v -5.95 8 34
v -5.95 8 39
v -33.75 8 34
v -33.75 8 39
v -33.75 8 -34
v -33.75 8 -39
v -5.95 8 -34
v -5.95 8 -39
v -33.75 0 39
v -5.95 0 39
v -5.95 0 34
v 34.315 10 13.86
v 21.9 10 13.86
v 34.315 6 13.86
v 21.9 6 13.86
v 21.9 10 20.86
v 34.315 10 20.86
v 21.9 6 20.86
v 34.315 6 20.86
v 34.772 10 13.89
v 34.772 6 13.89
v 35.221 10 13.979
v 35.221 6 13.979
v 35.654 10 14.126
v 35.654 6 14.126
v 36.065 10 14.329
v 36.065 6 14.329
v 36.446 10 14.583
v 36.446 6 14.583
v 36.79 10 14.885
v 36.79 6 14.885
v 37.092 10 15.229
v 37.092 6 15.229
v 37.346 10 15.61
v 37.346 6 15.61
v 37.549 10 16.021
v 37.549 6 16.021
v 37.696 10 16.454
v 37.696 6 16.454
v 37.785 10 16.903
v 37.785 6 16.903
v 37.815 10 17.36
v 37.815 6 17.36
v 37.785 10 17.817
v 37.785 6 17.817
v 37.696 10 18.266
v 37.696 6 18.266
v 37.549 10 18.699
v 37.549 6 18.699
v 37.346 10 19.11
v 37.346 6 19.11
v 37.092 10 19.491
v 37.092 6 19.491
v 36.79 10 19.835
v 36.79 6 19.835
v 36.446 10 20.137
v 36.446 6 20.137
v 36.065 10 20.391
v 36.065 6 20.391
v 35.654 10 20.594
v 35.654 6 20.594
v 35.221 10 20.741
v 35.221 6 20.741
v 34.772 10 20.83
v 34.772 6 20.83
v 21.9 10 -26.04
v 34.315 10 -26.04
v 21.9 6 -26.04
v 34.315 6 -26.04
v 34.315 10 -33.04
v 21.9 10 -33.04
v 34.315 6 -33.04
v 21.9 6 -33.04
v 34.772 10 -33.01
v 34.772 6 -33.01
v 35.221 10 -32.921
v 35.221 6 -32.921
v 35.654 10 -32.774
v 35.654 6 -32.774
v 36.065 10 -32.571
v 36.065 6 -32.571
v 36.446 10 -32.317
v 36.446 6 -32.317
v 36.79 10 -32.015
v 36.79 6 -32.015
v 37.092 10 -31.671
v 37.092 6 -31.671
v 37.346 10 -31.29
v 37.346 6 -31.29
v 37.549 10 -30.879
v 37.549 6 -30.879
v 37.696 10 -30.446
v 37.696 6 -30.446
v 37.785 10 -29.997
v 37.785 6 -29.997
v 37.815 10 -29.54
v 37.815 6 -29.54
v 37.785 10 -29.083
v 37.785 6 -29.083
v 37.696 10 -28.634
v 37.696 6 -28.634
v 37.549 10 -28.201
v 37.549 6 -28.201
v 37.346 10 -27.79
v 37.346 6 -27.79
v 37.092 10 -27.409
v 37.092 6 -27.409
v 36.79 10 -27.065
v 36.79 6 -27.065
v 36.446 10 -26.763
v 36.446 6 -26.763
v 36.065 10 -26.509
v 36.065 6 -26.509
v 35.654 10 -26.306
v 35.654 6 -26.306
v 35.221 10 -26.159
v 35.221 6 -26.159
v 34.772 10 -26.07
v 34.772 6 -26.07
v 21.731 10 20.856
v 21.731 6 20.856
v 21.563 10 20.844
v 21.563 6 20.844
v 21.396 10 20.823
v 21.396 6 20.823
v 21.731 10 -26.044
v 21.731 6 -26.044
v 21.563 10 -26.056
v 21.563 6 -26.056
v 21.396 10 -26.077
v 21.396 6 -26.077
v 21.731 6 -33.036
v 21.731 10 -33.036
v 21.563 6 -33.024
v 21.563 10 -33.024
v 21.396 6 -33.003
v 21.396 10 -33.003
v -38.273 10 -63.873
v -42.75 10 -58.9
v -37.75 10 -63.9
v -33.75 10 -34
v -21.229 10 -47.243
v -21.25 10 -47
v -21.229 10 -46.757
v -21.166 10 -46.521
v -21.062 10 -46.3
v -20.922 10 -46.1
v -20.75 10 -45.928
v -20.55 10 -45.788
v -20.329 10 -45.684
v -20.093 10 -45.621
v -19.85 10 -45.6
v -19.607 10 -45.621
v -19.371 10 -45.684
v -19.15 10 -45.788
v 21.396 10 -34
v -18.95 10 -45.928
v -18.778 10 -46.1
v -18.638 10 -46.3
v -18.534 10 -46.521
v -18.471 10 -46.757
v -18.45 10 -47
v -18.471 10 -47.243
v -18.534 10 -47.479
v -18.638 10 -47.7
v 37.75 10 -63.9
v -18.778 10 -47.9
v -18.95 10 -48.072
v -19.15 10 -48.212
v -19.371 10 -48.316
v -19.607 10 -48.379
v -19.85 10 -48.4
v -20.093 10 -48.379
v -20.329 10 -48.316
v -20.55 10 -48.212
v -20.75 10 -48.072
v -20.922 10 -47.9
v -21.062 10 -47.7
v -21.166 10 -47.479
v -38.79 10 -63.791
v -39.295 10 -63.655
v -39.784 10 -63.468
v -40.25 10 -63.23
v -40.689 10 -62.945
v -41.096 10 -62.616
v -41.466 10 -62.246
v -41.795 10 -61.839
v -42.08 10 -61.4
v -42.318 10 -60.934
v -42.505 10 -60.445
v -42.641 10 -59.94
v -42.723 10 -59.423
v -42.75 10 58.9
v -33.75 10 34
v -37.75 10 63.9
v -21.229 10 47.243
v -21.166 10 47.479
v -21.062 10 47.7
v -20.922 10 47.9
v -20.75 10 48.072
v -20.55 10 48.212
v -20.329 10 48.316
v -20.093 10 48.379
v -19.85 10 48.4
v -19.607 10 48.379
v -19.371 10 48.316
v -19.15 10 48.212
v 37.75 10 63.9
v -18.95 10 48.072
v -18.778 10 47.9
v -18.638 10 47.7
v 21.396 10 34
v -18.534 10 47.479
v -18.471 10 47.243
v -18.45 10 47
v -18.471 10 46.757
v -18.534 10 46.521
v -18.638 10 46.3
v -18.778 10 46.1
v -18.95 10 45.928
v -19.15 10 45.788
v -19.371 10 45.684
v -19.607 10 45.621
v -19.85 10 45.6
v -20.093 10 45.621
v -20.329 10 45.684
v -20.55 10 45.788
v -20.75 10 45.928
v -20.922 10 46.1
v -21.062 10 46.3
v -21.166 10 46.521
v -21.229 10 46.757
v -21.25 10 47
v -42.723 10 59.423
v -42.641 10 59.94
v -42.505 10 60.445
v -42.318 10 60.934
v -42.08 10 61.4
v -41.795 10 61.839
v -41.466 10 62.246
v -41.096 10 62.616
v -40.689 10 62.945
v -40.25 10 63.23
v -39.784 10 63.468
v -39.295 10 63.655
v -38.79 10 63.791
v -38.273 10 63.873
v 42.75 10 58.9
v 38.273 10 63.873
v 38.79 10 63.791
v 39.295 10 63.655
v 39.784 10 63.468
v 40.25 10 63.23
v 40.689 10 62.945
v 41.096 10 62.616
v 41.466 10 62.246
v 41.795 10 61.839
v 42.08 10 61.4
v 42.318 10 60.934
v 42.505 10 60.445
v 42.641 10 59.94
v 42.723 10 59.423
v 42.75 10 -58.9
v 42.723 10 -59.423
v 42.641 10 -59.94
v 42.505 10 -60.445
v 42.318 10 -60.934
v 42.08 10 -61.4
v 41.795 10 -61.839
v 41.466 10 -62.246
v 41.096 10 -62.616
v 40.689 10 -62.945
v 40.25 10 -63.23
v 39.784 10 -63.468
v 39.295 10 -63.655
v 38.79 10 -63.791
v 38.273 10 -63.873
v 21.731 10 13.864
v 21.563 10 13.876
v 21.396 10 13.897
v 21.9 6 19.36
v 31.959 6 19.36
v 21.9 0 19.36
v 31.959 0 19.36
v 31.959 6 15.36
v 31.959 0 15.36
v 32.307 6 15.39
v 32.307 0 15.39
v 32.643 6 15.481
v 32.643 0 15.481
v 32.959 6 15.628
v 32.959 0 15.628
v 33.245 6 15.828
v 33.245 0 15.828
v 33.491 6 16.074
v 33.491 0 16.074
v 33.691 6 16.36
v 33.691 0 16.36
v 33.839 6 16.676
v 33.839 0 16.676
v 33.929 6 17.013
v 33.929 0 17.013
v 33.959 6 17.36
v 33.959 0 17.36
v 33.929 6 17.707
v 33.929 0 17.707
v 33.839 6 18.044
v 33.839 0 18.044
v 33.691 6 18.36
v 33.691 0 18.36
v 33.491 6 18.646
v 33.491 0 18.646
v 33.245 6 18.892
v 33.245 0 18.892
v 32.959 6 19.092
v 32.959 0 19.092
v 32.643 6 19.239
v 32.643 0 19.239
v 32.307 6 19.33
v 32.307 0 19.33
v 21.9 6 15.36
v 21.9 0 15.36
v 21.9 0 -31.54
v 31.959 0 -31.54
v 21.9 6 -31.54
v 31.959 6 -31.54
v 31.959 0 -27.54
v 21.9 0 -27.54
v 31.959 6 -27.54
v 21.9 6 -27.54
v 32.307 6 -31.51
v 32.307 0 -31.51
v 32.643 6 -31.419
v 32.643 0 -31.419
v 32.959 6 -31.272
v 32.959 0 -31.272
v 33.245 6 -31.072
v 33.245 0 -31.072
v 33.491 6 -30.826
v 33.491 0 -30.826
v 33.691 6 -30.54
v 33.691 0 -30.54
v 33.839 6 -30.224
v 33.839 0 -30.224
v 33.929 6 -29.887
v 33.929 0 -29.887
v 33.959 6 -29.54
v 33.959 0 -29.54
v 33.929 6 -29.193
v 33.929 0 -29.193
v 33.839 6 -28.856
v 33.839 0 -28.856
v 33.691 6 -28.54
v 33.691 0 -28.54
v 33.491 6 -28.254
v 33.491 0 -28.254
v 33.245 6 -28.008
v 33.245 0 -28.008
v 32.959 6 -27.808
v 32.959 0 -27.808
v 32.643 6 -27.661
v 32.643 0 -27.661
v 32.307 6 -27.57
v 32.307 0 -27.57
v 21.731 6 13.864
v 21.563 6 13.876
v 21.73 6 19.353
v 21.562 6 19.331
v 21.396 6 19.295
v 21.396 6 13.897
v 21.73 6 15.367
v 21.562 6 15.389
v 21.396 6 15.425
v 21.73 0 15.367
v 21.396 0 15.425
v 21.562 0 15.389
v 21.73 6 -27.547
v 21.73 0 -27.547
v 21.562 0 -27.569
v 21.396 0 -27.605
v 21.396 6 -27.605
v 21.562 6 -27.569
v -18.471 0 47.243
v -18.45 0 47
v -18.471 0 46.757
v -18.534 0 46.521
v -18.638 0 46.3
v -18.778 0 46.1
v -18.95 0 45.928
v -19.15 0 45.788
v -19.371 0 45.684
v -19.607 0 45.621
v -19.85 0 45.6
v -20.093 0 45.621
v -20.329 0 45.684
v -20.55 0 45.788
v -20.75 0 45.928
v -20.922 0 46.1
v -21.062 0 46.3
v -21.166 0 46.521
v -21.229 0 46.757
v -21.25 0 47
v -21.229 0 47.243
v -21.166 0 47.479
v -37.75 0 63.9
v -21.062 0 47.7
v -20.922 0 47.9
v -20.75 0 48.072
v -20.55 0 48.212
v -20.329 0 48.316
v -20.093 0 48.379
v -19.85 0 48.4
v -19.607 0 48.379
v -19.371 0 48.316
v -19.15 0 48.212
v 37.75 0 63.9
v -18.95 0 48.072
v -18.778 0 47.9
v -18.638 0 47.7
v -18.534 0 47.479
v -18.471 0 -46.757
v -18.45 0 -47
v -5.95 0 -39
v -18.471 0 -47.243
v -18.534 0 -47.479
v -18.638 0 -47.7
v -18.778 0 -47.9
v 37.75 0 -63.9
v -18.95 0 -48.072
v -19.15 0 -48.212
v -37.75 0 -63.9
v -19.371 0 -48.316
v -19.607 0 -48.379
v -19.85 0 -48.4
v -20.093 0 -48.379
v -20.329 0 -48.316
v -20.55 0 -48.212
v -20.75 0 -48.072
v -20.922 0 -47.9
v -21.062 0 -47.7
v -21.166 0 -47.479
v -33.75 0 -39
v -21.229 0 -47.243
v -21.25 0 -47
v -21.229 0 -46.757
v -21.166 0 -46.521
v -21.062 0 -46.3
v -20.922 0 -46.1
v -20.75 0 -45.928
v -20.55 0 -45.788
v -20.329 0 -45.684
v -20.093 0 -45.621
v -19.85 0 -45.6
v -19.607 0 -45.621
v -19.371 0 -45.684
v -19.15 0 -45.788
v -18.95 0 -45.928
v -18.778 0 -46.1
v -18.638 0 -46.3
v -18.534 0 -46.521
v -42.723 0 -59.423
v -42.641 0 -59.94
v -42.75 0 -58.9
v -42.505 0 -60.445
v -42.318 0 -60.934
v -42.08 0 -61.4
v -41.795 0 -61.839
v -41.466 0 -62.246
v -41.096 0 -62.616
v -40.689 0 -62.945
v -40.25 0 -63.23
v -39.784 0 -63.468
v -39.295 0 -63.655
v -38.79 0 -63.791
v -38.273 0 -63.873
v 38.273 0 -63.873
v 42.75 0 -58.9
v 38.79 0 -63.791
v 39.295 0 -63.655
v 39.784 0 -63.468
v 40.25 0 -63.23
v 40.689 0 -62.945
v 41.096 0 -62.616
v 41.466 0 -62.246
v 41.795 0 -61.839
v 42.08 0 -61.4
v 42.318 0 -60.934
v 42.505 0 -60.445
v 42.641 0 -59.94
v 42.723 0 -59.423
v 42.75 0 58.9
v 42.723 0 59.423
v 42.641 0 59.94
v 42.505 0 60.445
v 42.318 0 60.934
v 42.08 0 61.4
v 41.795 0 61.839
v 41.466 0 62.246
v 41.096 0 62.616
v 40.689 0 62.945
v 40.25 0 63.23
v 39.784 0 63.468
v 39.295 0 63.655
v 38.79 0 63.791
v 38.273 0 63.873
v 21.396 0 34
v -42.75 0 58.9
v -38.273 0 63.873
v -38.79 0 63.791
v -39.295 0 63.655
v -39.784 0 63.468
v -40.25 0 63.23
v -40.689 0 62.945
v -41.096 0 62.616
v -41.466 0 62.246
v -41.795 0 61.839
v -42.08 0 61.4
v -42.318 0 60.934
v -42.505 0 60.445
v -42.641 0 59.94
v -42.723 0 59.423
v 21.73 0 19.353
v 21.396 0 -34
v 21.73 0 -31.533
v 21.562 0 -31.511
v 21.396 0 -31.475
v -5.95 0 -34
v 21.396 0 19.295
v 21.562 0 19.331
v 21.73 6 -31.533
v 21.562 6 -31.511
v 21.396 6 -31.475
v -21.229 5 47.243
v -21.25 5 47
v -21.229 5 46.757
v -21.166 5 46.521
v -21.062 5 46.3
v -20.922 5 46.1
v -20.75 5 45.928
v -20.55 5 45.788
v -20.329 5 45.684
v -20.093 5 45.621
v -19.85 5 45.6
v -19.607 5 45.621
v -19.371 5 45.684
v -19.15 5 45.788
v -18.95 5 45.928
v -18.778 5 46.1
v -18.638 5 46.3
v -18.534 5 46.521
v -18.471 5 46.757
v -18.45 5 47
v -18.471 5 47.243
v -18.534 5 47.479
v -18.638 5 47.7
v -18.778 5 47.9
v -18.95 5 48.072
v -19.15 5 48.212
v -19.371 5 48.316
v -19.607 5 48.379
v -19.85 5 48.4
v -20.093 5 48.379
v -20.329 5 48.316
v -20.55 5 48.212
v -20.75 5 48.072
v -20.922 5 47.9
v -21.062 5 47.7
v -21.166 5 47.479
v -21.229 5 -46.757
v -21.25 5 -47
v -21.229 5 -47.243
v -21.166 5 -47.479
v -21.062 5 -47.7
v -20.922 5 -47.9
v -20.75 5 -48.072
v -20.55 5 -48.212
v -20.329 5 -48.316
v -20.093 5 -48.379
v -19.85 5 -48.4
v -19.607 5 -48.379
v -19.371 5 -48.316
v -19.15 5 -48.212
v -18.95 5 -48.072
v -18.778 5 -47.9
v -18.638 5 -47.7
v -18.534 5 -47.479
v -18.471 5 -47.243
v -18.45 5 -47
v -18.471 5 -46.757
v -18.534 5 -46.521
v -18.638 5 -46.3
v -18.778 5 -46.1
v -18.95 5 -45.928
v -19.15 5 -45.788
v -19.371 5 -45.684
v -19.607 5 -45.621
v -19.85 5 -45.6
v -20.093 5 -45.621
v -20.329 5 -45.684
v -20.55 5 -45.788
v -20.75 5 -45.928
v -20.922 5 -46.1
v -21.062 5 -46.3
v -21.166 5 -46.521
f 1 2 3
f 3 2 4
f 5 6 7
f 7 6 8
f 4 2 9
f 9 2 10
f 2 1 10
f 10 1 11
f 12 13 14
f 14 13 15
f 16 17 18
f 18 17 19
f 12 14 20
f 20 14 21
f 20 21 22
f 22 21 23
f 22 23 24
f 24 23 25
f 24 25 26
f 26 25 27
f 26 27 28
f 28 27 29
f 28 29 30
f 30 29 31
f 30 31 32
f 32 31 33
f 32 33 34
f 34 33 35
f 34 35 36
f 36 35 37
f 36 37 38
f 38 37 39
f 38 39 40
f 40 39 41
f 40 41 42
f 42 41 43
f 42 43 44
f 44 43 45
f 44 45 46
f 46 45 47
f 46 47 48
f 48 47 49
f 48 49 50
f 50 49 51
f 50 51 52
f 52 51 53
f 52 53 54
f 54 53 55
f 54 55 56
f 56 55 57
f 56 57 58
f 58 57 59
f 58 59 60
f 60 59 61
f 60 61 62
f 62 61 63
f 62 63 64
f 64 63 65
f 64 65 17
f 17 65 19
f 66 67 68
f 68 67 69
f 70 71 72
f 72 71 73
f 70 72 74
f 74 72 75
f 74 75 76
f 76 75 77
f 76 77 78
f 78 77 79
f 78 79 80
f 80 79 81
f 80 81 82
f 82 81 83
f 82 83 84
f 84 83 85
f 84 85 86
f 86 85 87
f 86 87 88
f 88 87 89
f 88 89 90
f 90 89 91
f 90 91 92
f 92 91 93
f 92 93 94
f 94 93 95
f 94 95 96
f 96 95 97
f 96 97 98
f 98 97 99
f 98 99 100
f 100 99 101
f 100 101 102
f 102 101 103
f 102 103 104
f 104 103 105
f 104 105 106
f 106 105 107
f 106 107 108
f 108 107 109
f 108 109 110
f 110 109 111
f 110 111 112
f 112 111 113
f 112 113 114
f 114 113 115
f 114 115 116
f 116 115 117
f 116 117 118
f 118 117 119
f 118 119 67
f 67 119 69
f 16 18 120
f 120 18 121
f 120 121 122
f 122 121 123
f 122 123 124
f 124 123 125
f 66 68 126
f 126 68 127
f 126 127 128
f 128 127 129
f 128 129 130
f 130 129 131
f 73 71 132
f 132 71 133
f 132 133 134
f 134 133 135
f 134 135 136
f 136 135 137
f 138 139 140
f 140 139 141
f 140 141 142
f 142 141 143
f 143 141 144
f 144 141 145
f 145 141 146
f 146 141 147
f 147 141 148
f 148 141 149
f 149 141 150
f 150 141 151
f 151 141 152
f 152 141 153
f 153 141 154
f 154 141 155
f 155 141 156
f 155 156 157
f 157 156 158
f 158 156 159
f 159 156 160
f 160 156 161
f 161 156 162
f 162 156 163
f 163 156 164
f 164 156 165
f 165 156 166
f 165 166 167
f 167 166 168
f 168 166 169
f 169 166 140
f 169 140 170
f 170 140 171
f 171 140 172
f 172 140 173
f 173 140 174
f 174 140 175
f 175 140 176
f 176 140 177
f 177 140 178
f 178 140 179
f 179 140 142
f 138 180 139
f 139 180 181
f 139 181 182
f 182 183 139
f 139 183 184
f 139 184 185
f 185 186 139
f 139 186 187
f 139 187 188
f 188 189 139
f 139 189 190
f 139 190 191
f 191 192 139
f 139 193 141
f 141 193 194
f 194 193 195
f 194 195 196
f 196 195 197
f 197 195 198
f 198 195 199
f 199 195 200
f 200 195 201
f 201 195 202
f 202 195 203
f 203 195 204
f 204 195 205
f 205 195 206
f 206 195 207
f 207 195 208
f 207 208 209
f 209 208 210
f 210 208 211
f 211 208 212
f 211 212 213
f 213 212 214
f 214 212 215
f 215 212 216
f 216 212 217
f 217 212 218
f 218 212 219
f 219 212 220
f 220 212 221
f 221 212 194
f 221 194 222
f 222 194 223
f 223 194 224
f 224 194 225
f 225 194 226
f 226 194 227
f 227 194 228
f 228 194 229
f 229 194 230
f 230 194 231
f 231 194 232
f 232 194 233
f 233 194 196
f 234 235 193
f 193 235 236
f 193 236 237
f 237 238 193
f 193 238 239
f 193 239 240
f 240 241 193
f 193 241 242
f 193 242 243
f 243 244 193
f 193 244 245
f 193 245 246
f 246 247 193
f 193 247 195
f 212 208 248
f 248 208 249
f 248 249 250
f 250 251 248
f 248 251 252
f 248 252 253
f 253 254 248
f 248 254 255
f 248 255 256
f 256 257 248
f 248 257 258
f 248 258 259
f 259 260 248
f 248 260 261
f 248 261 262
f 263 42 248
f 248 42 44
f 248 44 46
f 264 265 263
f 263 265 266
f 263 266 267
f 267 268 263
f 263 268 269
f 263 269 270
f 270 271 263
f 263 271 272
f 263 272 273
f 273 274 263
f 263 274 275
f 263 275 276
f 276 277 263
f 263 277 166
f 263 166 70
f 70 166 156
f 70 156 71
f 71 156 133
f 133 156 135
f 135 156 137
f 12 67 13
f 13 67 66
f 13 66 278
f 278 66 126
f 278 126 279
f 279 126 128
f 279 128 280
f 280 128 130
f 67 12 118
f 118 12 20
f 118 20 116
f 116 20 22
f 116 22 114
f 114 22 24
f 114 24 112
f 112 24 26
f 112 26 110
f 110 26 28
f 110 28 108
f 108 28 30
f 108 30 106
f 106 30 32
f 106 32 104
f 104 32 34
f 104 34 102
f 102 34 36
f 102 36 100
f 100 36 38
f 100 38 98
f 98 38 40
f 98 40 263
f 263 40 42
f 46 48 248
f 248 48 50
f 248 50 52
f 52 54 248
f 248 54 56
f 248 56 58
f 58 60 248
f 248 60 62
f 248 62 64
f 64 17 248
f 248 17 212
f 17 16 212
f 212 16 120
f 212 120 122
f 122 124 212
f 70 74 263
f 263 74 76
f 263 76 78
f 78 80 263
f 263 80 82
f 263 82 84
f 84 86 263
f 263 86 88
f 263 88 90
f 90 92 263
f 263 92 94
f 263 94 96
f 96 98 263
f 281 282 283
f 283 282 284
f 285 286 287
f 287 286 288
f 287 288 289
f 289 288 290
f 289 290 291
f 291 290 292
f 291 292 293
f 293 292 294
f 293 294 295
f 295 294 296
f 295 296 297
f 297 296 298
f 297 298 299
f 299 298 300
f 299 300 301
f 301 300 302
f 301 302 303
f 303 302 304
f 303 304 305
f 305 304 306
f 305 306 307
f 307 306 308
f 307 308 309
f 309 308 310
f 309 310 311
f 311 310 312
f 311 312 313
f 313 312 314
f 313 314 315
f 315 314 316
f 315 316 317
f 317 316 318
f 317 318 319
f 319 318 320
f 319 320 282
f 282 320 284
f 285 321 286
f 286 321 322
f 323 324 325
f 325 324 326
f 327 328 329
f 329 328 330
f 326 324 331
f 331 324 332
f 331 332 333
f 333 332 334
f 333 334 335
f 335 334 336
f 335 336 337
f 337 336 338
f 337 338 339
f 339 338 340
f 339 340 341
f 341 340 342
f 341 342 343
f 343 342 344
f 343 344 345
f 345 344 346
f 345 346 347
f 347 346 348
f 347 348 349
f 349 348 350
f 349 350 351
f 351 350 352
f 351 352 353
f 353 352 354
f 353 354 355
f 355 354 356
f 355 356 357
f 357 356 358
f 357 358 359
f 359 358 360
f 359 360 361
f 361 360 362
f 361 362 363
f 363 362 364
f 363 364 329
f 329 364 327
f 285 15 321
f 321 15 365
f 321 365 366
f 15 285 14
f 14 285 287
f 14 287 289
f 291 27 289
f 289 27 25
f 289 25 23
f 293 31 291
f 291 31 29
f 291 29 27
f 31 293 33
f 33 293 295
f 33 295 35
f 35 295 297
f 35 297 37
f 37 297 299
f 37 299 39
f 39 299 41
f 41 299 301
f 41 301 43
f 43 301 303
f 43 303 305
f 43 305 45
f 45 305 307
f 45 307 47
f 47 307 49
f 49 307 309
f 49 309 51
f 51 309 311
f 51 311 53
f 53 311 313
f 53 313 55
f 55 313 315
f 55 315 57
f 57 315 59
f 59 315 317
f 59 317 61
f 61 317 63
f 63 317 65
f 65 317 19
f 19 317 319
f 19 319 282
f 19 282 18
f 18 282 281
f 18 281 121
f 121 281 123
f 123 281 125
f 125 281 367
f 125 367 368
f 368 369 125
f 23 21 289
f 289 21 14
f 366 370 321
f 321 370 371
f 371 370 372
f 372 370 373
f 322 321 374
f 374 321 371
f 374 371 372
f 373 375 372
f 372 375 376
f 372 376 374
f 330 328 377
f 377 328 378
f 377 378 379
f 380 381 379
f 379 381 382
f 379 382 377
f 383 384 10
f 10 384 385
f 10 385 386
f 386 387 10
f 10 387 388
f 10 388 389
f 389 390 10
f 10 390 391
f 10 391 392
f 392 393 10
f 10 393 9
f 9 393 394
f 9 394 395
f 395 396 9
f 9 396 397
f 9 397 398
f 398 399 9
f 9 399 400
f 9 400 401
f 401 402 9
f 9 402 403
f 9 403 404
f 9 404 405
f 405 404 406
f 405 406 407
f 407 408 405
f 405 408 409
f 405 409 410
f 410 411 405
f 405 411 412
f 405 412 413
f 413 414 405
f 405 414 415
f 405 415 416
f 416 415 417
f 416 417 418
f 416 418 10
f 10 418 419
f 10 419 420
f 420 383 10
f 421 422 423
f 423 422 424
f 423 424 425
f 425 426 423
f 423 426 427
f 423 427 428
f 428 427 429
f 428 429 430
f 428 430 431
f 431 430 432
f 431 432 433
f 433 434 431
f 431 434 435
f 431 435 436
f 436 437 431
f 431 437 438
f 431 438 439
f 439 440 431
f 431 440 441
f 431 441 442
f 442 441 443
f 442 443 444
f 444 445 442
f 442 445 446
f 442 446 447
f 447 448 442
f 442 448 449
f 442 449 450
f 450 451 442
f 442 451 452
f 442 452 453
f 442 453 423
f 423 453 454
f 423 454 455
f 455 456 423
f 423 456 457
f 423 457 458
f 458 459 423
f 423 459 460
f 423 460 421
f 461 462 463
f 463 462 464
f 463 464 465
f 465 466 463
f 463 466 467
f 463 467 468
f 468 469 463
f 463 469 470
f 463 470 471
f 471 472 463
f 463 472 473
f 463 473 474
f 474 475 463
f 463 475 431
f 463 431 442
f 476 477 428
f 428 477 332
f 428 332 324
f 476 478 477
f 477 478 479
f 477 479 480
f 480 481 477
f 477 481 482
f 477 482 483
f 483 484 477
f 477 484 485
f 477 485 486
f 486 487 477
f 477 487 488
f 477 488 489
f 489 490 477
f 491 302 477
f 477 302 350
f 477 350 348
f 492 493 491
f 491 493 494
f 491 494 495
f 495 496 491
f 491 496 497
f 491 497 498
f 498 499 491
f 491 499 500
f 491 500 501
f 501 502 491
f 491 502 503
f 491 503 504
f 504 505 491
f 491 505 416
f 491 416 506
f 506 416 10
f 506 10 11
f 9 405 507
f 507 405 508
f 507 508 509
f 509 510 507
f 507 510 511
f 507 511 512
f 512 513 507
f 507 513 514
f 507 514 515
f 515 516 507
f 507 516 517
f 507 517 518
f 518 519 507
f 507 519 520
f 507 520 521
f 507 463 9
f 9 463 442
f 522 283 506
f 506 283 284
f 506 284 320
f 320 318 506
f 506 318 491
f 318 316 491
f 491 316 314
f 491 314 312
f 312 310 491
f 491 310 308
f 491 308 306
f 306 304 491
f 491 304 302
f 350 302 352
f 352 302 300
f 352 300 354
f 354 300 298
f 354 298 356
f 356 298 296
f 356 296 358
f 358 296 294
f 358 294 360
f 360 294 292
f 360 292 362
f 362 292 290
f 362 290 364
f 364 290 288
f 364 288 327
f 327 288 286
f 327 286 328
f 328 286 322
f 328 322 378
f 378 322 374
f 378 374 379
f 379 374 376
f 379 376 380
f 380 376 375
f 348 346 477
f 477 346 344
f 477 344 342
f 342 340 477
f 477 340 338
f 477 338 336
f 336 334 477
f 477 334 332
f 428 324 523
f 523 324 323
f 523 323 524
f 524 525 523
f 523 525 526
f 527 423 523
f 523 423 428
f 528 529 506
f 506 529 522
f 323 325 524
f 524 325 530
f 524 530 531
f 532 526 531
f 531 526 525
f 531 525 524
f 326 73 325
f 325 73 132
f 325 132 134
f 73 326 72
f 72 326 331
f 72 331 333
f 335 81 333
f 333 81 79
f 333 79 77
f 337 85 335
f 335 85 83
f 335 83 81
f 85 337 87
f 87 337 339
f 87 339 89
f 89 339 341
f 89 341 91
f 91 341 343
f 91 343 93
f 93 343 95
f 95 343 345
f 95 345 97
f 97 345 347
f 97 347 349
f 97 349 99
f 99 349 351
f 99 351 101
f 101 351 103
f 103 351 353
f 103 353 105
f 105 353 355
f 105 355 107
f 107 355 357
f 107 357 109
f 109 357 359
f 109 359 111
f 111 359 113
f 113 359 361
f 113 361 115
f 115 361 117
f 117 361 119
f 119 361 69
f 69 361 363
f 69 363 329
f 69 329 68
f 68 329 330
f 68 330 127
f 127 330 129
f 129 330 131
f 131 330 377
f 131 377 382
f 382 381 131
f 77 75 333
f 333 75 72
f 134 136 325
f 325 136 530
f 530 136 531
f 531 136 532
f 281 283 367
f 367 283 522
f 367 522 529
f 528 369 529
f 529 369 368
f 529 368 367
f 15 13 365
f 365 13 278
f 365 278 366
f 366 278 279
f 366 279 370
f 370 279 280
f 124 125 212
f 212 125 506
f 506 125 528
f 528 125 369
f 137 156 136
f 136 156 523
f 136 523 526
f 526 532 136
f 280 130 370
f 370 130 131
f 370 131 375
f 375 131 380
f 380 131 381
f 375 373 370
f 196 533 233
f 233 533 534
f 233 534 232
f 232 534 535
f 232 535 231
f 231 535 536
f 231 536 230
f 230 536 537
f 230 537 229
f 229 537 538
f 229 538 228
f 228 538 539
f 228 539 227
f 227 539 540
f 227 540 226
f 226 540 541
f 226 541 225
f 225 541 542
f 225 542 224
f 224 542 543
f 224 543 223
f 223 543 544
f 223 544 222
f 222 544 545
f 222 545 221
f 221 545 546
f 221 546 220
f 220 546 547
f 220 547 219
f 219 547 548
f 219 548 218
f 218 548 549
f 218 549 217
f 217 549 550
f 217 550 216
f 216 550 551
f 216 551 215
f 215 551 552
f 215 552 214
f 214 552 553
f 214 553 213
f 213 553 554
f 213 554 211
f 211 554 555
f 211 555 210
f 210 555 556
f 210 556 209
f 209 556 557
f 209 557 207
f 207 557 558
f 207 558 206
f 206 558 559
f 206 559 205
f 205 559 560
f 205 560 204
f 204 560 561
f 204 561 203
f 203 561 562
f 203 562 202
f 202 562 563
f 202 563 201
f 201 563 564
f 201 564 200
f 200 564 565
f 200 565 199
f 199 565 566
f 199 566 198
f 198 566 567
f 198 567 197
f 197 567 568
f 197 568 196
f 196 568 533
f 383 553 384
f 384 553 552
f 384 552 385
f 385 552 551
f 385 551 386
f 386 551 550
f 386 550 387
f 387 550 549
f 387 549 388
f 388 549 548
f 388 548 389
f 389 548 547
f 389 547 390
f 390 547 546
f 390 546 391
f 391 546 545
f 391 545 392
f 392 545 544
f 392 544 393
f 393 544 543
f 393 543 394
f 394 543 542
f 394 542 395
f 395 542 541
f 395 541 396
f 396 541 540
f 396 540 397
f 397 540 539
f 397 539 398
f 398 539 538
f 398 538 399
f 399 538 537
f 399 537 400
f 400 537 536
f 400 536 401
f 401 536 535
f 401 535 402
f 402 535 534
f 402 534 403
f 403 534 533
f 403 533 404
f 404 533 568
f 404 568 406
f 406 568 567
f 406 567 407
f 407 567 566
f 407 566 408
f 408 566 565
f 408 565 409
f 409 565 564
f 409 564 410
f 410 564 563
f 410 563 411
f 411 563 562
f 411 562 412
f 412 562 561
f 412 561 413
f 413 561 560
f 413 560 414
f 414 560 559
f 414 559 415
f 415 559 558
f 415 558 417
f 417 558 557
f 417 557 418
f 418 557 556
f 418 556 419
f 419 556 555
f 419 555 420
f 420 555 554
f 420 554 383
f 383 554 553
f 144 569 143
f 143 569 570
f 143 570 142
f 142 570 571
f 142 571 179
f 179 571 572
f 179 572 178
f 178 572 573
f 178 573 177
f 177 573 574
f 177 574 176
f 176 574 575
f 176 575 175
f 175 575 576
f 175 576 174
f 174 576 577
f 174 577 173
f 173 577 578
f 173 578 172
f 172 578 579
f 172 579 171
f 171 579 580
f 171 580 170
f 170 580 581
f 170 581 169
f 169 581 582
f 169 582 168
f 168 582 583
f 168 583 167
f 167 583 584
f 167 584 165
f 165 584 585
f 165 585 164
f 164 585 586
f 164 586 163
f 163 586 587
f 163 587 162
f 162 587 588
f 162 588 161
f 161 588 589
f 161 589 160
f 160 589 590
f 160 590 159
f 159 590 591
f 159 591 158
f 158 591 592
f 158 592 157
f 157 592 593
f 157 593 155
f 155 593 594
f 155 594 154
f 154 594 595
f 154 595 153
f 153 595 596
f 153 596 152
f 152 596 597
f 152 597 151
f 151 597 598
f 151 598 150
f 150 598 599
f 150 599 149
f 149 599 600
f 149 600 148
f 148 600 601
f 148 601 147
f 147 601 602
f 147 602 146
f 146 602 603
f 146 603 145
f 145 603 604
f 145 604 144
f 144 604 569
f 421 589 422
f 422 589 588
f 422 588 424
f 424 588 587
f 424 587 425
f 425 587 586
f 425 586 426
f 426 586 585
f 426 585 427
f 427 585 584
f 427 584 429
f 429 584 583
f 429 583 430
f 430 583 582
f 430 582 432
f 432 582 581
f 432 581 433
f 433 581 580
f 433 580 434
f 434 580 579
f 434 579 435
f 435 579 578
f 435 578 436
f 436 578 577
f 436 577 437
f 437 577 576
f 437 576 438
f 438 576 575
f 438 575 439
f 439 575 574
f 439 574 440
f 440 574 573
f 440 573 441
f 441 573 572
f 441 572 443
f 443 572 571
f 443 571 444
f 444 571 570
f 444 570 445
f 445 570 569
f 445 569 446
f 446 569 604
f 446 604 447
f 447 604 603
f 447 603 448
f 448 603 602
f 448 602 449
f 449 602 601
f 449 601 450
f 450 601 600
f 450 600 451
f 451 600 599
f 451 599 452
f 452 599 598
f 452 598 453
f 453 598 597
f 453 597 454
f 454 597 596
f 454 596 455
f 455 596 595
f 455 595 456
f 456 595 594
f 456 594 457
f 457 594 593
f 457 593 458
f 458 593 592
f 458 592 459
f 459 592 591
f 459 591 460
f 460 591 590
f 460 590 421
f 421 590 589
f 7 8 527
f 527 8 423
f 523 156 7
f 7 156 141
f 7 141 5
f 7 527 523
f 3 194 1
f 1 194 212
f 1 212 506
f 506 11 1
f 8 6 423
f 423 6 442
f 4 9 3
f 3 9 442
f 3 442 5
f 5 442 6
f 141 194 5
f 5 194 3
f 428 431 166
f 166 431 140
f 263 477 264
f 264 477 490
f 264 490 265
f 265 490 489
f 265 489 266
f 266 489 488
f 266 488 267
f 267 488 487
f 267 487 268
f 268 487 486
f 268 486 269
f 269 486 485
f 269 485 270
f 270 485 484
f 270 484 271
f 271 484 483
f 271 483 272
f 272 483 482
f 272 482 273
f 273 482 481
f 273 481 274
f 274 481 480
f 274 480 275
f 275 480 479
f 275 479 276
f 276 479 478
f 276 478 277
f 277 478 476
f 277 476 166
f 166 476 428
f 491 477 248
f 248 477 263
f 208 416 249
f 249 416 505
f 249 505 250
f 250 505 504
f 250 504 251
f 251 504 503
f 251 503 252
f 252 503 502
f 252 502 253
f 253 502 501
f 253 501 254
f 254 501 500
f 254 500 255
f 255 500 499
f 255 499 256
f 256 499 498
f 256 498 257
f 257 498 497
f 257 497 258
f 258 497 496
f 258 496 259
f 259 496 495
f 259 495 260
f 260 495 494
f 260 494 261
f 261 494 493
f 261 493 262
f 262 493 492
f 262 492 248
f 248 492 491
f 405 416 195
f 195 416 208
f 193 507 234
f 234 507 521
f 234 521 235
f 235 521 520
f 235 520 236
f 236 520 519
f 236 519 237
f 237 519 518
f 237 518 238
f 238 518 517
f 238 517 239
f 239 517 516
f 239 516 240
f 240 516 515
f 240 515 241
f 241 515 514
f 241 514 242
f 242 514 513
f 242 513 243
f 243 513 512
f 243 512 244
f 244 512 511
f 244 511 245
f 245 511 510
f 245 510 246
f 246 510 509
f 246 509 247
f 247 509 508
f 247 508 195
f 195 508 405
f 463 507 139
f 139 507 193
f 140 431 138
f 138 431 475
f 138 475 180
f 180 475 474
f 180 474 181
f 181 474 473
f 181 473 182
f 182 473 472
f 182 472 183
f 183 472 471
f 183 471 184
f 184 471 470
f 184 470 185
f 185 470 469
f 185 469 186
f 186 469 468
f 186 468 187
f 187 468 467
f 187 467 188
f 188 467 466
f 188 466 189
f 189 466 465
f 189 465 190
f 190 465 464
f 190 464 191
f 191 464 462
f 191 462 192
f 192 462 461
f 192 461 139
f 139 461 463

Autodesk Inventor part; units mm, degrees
ref_plane "YZ Plane" through (0, 0, 0) normal (1, 0, 0) x (0, 1, 0)
ref_plane "XZ Plane" through (0, 0, 0) normal (0, 1, 0) x (-1, 0, 0)
sketch "Skizze1" plane through (0, 0, 0) normal (0, 1, 0) x (-1, 0, 0)
  line L0 (-37.75, -63.9) -> (37.75, -63.9)
  line L1 (42.75, -58.9) -> (42.75, 58.9)
  line L2 (37.75, 63.9) -> (-37.75, 63.9)
  line L3 (-42.75, 58.9) -> (-42.75, -58.9)
  line L4 (-42.75, -63.9) -> (42.75, 63.9) construction
  line L5 (42.75, -63.9) -> (-42.75, 63.9) construction
  arc A0 (42.75, 58.9) -> (37.75, 63.9) centre (37.75, 58.9) ccw
  arc A1 (-37.75, 63.9) -> (-42.75, 58.9) centre (-37.75, 58.9) ccw
  arc A2 (-42.75, -58.9) -> (-37.75, -63.9) centre (-37.75, -58.9) ccw
  arc A3 (37.75, -63.9) -> (42.75, -58.9) centre (37.75, -58.9) ccw
  point P0 (0, 0)
  dimension "d0" = 85.5
  dimension "d1" = 127.8
  dimension "d2" = 5
extrude "Extrusion1" add sketch "Skizze1" along normal blind 10
ref_plane "Arbeitsebene1" through (37.75, 0, 0) normal (0, 0, -1) x (-1, 0, 0)
ref_plane "Arbeitsebene2" through (0, 0, 58.9) normal (1, 0, 0) x (0, 0, -1)
sketch "Skizze2" plane through (0, 10, 0) normal (0, 1, 0) x (1, 0, 0)
  line L0 (-6.95, 38) -> (-32.75, 38) projected
  line L1 (-32.75, -38) -> (-6.95, -38) projected
  line L2 (-6.95, -38) -> (-6.95, -2.5) projected
  line L3 (-32.75, 38) -> (-32.75, -38) projected
  line L4 (-32.75, -38) -> (-6.95, -38)
  line L5 (-6.95, -38) -> (-6.95, 38)
  line L6 (-6.95, 38) -> (-32.75, 38)
  line L7 (-32.75, 38) -> (-32.75, -38)
  line L8 (-5.95, 39) -> (-5.95, -39)
  line L9 (-5.95, -39) -> (-33.75, -39)
  line L10 (-33.75, -39) -> (-33.75, 39)
  line L11 (-33.75, 39) -> (-5.95, 39)
  point P0 (0, 0)
  dimension "d5" = 1
extrude "Extrusion2" cut sketch "Skizze2" against normal through all contours L5 L2 L1 L3 L0 | L8 L9 L10 L11
ref_plane "Arbeitsebene3" through (-32.75, 5, -38) normal (0, 1, 0) x (0, 0, 1)
sketch "Skizze3" plane through (0, 10, 0) normal (0, 1, 0) x (1, 0, 0)
  line L0 (-5.95, -39) -> (-33.75, -39) projected
  line L1 (-33.75, -39) -> (-33.75, 39) projected
  line L2 (-33.75, 39) -> (-5.95, 39) projected
  line L3 (-5.95, 39) -> (-5.95, -39) projected
  arc A0 (-37.75, 63.9) -> (-42.75, 58.9) centre (-37.75, 58.9) ccw projected
  line L4 (-42.75, 58.9) -> (-42.75, -58.9) projected
  arc A1 (-42.75, -58.9) -> (-37.75, -63.9) centre (-37.75, -58.9) ccw projected
  line L5 (-37.75, -63.9) -> (37.75, -63.9) projected
  arc A2 (37.75, -63.9) -> (42.75, -58.9) centre (37.75, -58.9) ccw projected
  line L6 (42.75, -58.9) -> (42.75, 58.9) projected
  arc A3 (42.75, 58.9) -> (37.75, 63.9) centre (37.75, 58.9) ccw projected
  line L7 (37.75, 63.9) -> (-37.75, 63.9) projected
  line L8 (-33.75, -39) -> (-33.75, 39) projected
  line L9 (-5.95, 39) -> (-5.95, -39) projected
  line L10 (-33.75, -39) -> (-5.95, -39)
  line L11 (-5.95, -39) -> (-5.95, -34)
  line L12 (-5.95, -34) -> (-33.75, -34)
  line L13 (-33.75, -34) -> (-33.75, -39)
  line L14 (-33.75, 39) -> (-5.95, 39)
  line L15 (-5.95, 39) -> (-5.95, 34)
  line L16 (-5.95, 34) -> (-33.75, 34)
  line L17 (-33.75, 34) -> (-33.75, 39)
  point P0 (0, 0)
  point P1 (-5.95, 34)
  point P2 (-5.95, -34)
  dimension "d8" = 27.8
  dimension "d9" = 5
  dimension "d10" = 5
extrude "Extrusion3" add sketch "Skizze3" against normal blind 1 contours L0 L1 L12 L3 | L16 L1 L2 L3
sketch "Skizze4" plane through (0, 0, 0) normal (0, -1, 0) x (1, 0, 0)
  line L0 (-33.75, 39) -> (-5.95, 39) projected
  line L1 (-5.95, 39) -> (-5.95, -39) projected
  line L2 (-5.95, -39) -> (-33.75, -39) projected
  line L3 (-33.75, -39) -> (-33.75, 39) projected
  arc A0 (-42.75, -58.9) -> (-37.75, -63.9) centre (-37.75, -58.9) ccw projected
  line L4 (37.75, -63.9) -> (-37.75, -63.9) projected
  arc A1 (37.75, -63.9) -> (42.75, -58.9) centre (37.75, -58.9) ccw projected
  line L5 (42.75, 58.9) -> (42.75, -58.9) projected
  arc A2 (42.75, 58.9) -> (37.75, 63.9) centre (37.75, 58.9) ccw projected
  line L6 (-37.75, 63.9) -> (37.75, 63.9) projected
  arc A3 (-37.75, 63.9) -> (-42.75, 58.9) centre (-37.75, 58.9) ccw projected
  line L7 (-42.75, -58.9) -> (-42.75, 58.9) projected
  line L8 (-5.95, -34) -> (-5.95, 34) projected
  line L9 (-5.95, 34) -> (21.3958, 34)
  line L10 (21.3958, 34) -> (21.3958, -34)
  line L11 (21.3958, -34) -> (-5.95, -34)
  line L12 (-5.95, -34) -> (-5.95, 34)
  line L13 (3.55, 7.5) -> (3.55, -8) projected
  point P0 (0, 0)
  point P1 (-5.95, -34)
  dimension "d14" = 5
  dimension "d15" = 5
extrude "Extrusion4" cut sketch "Skizze4" against normal through all contours L9 L10 L11 L1
sketch "Skizze5" plane through (0, 0, 0) normal (0, -1, 0) x (1, 0, 0)
  arc A0 (-42.75, -58.9) -> (-37.75, -63.9) centre (-37.75, -58.9) ccw projected
  line L0 (37.75, -63.9) -> (-37.75, -63.9) projected
  arc A1 (37.75, -63.9) -> (42.75, -58.9) centre (37.75, -58.9) ccw projected
  line L1 (42.75, 58.9) -> (42.75, -58.9) projected
  arc A2 (42.75, 58.9) -> (37.75, 63.9) centre (37.75, 58.9) ccw projected
  line L2 (-37.75, 63.9) -> (37.75, 63.9) projected
  arc A3 (-37.75, 63.9) -> (-42.75, 58.9) centre (-37.75, 58.9) ccw projected
  line L3 (-42.75, -58.9) -> (-42.75, 58.9) projected
  line L4 (-5.95, 34) -> (21.3958, 34) projected
  line L5 (21.3958, 34) -> (21.3958, -34) projected
  line L6 (21.3958, -34) -> (-5.95, -34) projected
  line L7 (-5.95, -34) -> (-5.95, -39) projected
  line L8 (-5.95, -39) -> (-33.75, -39) projected
  line L9 (-33.75, -39) -> (-33.75, 39) projected
  line L10 (-33.75, 39) -> (-5.95, 39) projected
  line L11 (-5.95, 39) -> (-5.95, 34) projected
  circle A4 centre (-19.85, -47) radius 1.4
  circle A5 centre (-19.85, 47) radius 1.4
  point P0 (0, 0)
  dimension "d18" = 2.8
  dimension "d19" = 2.8
  dimension "d20" = 8
  dimension "d21" = 8
extrude "Extrusion5" cut sketch "Skizze5" against normal through all contours A4 | A5
sketch "Skizze6" plane through (0, 10, 0) normal (0, 1, 0) x (1, 0, 0)
  circle A0 centre (25.45, -17.36) radius 1.57 projected
  circle A1 centre (32.55, -17.36) radius 1.57 projected
  circle A2 centre (32.55, 29.54) radius 1.57 projected
  circle A3 centre (25.45, 29.54) radius 1.57 projected
  line L0 (21.45, 51.1) -> (36.55, 51.1) projected
  line L1 (36.55, 42.04) -> (36.55, 51.1) projected
  line L2 (34.55, 42.04) -> (36.55, 42.04) projected
  line L3 (34.55, 34.04) -> (34.55, 42.04) projected
  line L4 (36.55, 34.04) -> (34.55, 34.04) projected
  line L5 (36.55, -21.86) -> (36.55, 34.04) projected
  line L6 (36.55, -21.86) -> (34.55, -21.86) projected
  line L7 (34.55, -21.86) -> (34.55, -29.86) projected
  line L8 (34.55, -29.86) -> (36.55, -29.86) projected
  line L9 (36.55, -29.86) -> (36.55, -38.92) projected
  line L10 (36.55, -38.92) -> (21.45, -38.92) projected
  line L11 (21.45, -38.92) -> (21.45, -29.86) projected
  line L12 (21.45, -29.86) -> (23.45, -29.86) projected
  line L13 (23.45, -29.86) -> (23.45, -21.86) projected
  line L14 (23.45, -21.86) -> (21.45, -21.86) projected
  line L15 (21.45, -21.86) -> (21.45, 34.04) projected
  line L16 (23.45, 34.04) -> (21.45, 34.04) projected
  line L17 (23.45, 42.04) -> (23.45, 34.04) projected
  line L18 (21.45, 42.04) -> (23.45, 42.04) projected
  line L19 (21.45, 51.1) -> (21.45, 42.04) projected
  circle A4 centre (25.45, 29.54) radius 1.57
  circle A5 centre (32.55, 29.54) radius 1.57
  circle A6 centre (25.45, -17.36) radius 1.57
  circle A7 centre (32.55, -17.36) radius 1.57
  circle A8 centre (21.9, 29.54) radius 1.57
  circle A9 centre (29, 29.54) radius 1.57
  circle A10 centre (21.9, -17.36) radius 1.57
  circle A11 centre (29, -17.36) radius 1.57
  point P0 (0, 0)
hole "Bohrung1" at (29, 10, 17.36) at (29, 10, -29.54) at (21.9, 10, -29.54) at (21.9, 10, 17.36) direction (0, -1, 0) diameter 4 end through all counterbore diameter 7 counterbore depth 4
sketch "Skizze7" plane through (21.9, 6, -29.54) normal (0, 1, 0) x (1, 0, 0)
  circle A0 centre (7.1, 0) radius 2 projected
  arc A1 (-0.5042, -1.9354) -> (-0.5042, 1.9354) centre (0, 0) ccw projected
  line L0 (9.2, -49.54) -> (5, -49.54) projected
  circle A2 centre (7.1, -46.9) radius 2 projected
  arc A3 (-0.5042, -48.8354) -> (-0.5042, -44.9646) centre (0, -46.9) ccw projected
  arc A4 (-0.5042, -50.3635) -> (-0.5042, -43.4365) centre (0, -46.9) ccw projected
  line L1 (0, -46.9) -> (10.0593, -46.9) construction
  line L2 (0, -44.9) -> (10.0593, -44.9)
  line L3 (10.0593, -48.9) -> (0, -48.9)
  arc A5 (0, -44.9) -> (0, -48.9) centre (0, -46.9) ccw
  arc A6 (10.0593, -48.9) -> (10.0593, -44.9) centre (10.0593, -46.9) ccw
  arc A7 (-0.5042, -1.9354) -> (-0.5042, 1.9354) centre (0, 0) ccw projected
  line L4 (0, 0) -> (10.0593, 0) construction
  line L5 (0, 2) -> (10.0593, 2)
  line L6 (10.0593, -2) -> (0, -2)
  arc A8 (0, 2) -> (0, -2) centre (0, 0) ccw
  arc A9 (10.0593, -2) -> (10.0593, 2) centre (10.0593, 0) ccw
  point P0 (-21.9, -29.54)
  point P1 (5.0296, -46.9)
  point P2 (5.0296, 0)
  point P3 (0, -48.9)
  point P4 (0, -2)
  point P5 (0, 2)
extrude "Extrusion6" cut sketch "Skizze7" against normal through all
sketch "Skizze8" plane through (0, 10, 0) normal (0, 1, 0) x (1, 0, 0)
  arc A0 (21.3958, 26.0765) -> (21.3958, 33.0035) centre (21.9, 29.54) ccw projected
  line L0 (21.3958, 26.0765) -> (21.3958, -13.8965) projected
  arc A1 (21.3958, -20.8235) -> (21.3958, -13.8965) centre (21.9, -17.36) ccw projected
  line L1 (21.3958, -20.8235) -> (21.3958, -34) projected
  line L2 (21.3958, -34) -> (-33.75, -34) projected
  line L3 (-33.75, -34) -> (-33.75, 34) projected
  line L4 (-33.75, 34) -> (21.3958, 34) projected
  line L5 (21.3958, 34) -> (21.3958, 33.0035) projected
  circle A2 centre (29, -17.36) radius 3.5 projected
  circle A3 centre (29, 29.54) radius 3.5 projected
  circle A4 centre (-19.85, -47) radius 1.4 projected
  circle A5 centre (-19.85, 47) radius 1.4 projected
  arc A6 (-37.75, 63.9) -> (-42.75, 58.9) centre (-37.75, 58.9) ccw projected
  line L6 (-42.75, 58.9) -> (-42.75, -58.9) projected
  arc A7 (-42.75, -58.9) -> (-37.75, -63.9) centre (-37.75, -58.9) ccw projected
  line L7 (-37.75, -63.9) -> (37.75, -63.9) projected
  arc A8 (37.75, -63.9) -> (42.75, -58.9) centre (37.75, -58.9) ccw projected
  line L8 (42.75, -58.9) -> (42.75, 58.9) projected
  arc A9 (42.75, 58.9) -> (37.75, 63.9) centre (37.75, 58.9) ccw projected
  line L9 (37.75, 63.9) -> (-37.75, 63.9) projected
  arc A10 (21.3958, 26.0765) -> (21.3958, 33.0035) centre (21.9, 29.54) ccw projected
  line L10 (21.9, 29.54) -> (34.3149, 29.54) construction
  line L11 (21.9, 26.04) -> (34.3149, 26.04)
  line L12 (34.3149, 33.04) -> (21.9, 33.04)
  arc A11 (21.9, 33.04) -> (21.9, 26.04) centre (21.9, 29.54) ccw
  arc A12 (34.3149, 26.04) -> (34.3149, 33.04) centre (34.3149, 29.54) ccw
  line L13 (21.9, -17.36) -> (34.3149, -17.36) construction
  line L14 (21.9, -20.86) -> (34.3149, -20.86)
  line L15 (34.3149, -13.86) -> (21.9, -13.86)
  arc A13 (21.9, -13.86) -> (21.9, -20.86) centre (21.9, -17.36) ccw
  arc A14 (34.3149, -20.86) -> (34.3149, -13.86) centre (34.3149, -17.36) ccw
  point P0 (0, 0)
  point P1 (28.1075, 29.54)
  point P2 (28.1075, -17.36)
  point P3 (21.3958, -13.8965)
  point P4 (21.3958, 33.0035)
extrude "Extrusion7" cut sketch "Skizze8" against normal up to surface (4 mm away) contours A11 A0 | A0 L12 A3 L11 | A1 A13 | A3 | A3 L12 A12 L11 | L15 A2 L14 A1 | L15 A14 L14 A2 | A2
sketch "Skizze9" plane through (0, 9, 0) normal (0, -1, 0) x (1, 0, 0)
  circle A0 centre (-19.85, 47) radius 1.4 projected
  circle A1 centre (-19.85, -47) radius 1.4 projected
  arc A2 (-42.75, -58.9) -> (-37.75, -63.9) centre (-37.75, -58.9) ccw projected
  line L0 (37.75, -63.9) -> (-37.75, -63.9) projected
  arc A3 (37.75, -63.9) -> (42.75, -58.9) centre (37.75, -58.9) ccw projected
  line L1 (42.75, 58.9) -> (42.75, -58.9) projected
  arc A4 (42.75, 58.9) -> (37.75, 63.9) centre (37.75, 58.9) ccw projected
  line L2 (-37.75, 63.9) -> (37.75, 63.9) projected
  arc A5 (-37.75, 63.9) -> (-42.75, 58.9) centre (-37.75, 58.9) ccw projected
  line L3 (-42.75, -58.9) -> (-42.75, 58.9) projected
  line L4 (21.9, 19.36) -> (31.9593, 19.36) projected
  arc A6 (31.9593, 15.36) -> (31.9593, 19.36) centre (31.9593, 17.36) ccw projected
  line L5 (31.9593, 15.36) -> (21.9, 15.36) projected
  arc A7 (21.3958, 15.4246) -> (21.9, 15.36) centre (21.9, 17.36) ccw projected
  line L6 (21.3958, 15.4246) -> (21.3958, -27.6046) projected
  arc A8 (21.9, -27.54) -> (21.3958, -27.6046) centre (21.9, -29.54) ccw projected
  line L7 (21.9, -27.54) -> (31.9593, -27.54) projected
  arc A9 (31.9593, -31.54) -> (31.9593, -27.54) centre (31.9593, -29.54) ccw projected
  line L8 (31.9593, -31.54) -> (21.9, -31.54) projected
  arc A10 (21.3958, -31.4754) -> (21.9, -31.54) centre (21.9, -29.54) ccw projected
  line L9 (21.3958, -31.4754) -> (21.3958, -34) projected
  line L10 (21.3958, -34) -> (-5.95, -34) projected
  line L11 (-5.95, -34) -> (-5.95, -39) projected
  line L12 (-5.95, -39) -> (-33.75, -39) projected
  line L13 (-33.75, -39) -> (-33.75, 39) projected
  line L14 (-33.75, 39) -> (-5.95, 39) projected
  line L15 (-5.95, 39) -> (-5.95, 34) projected
  line L16 (-5.95, 34) -> (21.3958, 34) projected
  line L17 (21.3958, 34) -> (21.3958, 19.2954) projected
  arc A11 (21.9, 19.36) -> (21.3958, 19.2954) centre (21.9, 17.36) ccw projected
  line L18 (-33.75, 39) -> (-5.95, 39) projected
  line L19 (-33.75, 39) -> (-5.95, 39)
  line L20 (-5.95, 39) -> (-5.95, 34)
  line L21 (-5.95, 34) -> (-33.75, 34)
  line L22 (-33.75, 34) -> (-33.75, 39)
  line L23 (-5.95, -39) -> (-33.75, -39) projected
  line L24 (-33.75, -39) -> (-33.75, -34) projected
  line L25 (-5.95, -39) -> (-33.75, -39)
  line L26 (-33.75, -39) -> (-33.75, -34)
  line L27 (-33.75, -34) -> (-5.95, -34)
  line L28 (-5.95, -34) -> (-5.95, -39)
  point P0 (0, 0)
extrude "Extrusion8" add sketch "Skizze9" along normal blind 1 contours L21 L13 L14 L15 | L27 L11 L12 L13
properties part number "TIRFImager_base_v0"
